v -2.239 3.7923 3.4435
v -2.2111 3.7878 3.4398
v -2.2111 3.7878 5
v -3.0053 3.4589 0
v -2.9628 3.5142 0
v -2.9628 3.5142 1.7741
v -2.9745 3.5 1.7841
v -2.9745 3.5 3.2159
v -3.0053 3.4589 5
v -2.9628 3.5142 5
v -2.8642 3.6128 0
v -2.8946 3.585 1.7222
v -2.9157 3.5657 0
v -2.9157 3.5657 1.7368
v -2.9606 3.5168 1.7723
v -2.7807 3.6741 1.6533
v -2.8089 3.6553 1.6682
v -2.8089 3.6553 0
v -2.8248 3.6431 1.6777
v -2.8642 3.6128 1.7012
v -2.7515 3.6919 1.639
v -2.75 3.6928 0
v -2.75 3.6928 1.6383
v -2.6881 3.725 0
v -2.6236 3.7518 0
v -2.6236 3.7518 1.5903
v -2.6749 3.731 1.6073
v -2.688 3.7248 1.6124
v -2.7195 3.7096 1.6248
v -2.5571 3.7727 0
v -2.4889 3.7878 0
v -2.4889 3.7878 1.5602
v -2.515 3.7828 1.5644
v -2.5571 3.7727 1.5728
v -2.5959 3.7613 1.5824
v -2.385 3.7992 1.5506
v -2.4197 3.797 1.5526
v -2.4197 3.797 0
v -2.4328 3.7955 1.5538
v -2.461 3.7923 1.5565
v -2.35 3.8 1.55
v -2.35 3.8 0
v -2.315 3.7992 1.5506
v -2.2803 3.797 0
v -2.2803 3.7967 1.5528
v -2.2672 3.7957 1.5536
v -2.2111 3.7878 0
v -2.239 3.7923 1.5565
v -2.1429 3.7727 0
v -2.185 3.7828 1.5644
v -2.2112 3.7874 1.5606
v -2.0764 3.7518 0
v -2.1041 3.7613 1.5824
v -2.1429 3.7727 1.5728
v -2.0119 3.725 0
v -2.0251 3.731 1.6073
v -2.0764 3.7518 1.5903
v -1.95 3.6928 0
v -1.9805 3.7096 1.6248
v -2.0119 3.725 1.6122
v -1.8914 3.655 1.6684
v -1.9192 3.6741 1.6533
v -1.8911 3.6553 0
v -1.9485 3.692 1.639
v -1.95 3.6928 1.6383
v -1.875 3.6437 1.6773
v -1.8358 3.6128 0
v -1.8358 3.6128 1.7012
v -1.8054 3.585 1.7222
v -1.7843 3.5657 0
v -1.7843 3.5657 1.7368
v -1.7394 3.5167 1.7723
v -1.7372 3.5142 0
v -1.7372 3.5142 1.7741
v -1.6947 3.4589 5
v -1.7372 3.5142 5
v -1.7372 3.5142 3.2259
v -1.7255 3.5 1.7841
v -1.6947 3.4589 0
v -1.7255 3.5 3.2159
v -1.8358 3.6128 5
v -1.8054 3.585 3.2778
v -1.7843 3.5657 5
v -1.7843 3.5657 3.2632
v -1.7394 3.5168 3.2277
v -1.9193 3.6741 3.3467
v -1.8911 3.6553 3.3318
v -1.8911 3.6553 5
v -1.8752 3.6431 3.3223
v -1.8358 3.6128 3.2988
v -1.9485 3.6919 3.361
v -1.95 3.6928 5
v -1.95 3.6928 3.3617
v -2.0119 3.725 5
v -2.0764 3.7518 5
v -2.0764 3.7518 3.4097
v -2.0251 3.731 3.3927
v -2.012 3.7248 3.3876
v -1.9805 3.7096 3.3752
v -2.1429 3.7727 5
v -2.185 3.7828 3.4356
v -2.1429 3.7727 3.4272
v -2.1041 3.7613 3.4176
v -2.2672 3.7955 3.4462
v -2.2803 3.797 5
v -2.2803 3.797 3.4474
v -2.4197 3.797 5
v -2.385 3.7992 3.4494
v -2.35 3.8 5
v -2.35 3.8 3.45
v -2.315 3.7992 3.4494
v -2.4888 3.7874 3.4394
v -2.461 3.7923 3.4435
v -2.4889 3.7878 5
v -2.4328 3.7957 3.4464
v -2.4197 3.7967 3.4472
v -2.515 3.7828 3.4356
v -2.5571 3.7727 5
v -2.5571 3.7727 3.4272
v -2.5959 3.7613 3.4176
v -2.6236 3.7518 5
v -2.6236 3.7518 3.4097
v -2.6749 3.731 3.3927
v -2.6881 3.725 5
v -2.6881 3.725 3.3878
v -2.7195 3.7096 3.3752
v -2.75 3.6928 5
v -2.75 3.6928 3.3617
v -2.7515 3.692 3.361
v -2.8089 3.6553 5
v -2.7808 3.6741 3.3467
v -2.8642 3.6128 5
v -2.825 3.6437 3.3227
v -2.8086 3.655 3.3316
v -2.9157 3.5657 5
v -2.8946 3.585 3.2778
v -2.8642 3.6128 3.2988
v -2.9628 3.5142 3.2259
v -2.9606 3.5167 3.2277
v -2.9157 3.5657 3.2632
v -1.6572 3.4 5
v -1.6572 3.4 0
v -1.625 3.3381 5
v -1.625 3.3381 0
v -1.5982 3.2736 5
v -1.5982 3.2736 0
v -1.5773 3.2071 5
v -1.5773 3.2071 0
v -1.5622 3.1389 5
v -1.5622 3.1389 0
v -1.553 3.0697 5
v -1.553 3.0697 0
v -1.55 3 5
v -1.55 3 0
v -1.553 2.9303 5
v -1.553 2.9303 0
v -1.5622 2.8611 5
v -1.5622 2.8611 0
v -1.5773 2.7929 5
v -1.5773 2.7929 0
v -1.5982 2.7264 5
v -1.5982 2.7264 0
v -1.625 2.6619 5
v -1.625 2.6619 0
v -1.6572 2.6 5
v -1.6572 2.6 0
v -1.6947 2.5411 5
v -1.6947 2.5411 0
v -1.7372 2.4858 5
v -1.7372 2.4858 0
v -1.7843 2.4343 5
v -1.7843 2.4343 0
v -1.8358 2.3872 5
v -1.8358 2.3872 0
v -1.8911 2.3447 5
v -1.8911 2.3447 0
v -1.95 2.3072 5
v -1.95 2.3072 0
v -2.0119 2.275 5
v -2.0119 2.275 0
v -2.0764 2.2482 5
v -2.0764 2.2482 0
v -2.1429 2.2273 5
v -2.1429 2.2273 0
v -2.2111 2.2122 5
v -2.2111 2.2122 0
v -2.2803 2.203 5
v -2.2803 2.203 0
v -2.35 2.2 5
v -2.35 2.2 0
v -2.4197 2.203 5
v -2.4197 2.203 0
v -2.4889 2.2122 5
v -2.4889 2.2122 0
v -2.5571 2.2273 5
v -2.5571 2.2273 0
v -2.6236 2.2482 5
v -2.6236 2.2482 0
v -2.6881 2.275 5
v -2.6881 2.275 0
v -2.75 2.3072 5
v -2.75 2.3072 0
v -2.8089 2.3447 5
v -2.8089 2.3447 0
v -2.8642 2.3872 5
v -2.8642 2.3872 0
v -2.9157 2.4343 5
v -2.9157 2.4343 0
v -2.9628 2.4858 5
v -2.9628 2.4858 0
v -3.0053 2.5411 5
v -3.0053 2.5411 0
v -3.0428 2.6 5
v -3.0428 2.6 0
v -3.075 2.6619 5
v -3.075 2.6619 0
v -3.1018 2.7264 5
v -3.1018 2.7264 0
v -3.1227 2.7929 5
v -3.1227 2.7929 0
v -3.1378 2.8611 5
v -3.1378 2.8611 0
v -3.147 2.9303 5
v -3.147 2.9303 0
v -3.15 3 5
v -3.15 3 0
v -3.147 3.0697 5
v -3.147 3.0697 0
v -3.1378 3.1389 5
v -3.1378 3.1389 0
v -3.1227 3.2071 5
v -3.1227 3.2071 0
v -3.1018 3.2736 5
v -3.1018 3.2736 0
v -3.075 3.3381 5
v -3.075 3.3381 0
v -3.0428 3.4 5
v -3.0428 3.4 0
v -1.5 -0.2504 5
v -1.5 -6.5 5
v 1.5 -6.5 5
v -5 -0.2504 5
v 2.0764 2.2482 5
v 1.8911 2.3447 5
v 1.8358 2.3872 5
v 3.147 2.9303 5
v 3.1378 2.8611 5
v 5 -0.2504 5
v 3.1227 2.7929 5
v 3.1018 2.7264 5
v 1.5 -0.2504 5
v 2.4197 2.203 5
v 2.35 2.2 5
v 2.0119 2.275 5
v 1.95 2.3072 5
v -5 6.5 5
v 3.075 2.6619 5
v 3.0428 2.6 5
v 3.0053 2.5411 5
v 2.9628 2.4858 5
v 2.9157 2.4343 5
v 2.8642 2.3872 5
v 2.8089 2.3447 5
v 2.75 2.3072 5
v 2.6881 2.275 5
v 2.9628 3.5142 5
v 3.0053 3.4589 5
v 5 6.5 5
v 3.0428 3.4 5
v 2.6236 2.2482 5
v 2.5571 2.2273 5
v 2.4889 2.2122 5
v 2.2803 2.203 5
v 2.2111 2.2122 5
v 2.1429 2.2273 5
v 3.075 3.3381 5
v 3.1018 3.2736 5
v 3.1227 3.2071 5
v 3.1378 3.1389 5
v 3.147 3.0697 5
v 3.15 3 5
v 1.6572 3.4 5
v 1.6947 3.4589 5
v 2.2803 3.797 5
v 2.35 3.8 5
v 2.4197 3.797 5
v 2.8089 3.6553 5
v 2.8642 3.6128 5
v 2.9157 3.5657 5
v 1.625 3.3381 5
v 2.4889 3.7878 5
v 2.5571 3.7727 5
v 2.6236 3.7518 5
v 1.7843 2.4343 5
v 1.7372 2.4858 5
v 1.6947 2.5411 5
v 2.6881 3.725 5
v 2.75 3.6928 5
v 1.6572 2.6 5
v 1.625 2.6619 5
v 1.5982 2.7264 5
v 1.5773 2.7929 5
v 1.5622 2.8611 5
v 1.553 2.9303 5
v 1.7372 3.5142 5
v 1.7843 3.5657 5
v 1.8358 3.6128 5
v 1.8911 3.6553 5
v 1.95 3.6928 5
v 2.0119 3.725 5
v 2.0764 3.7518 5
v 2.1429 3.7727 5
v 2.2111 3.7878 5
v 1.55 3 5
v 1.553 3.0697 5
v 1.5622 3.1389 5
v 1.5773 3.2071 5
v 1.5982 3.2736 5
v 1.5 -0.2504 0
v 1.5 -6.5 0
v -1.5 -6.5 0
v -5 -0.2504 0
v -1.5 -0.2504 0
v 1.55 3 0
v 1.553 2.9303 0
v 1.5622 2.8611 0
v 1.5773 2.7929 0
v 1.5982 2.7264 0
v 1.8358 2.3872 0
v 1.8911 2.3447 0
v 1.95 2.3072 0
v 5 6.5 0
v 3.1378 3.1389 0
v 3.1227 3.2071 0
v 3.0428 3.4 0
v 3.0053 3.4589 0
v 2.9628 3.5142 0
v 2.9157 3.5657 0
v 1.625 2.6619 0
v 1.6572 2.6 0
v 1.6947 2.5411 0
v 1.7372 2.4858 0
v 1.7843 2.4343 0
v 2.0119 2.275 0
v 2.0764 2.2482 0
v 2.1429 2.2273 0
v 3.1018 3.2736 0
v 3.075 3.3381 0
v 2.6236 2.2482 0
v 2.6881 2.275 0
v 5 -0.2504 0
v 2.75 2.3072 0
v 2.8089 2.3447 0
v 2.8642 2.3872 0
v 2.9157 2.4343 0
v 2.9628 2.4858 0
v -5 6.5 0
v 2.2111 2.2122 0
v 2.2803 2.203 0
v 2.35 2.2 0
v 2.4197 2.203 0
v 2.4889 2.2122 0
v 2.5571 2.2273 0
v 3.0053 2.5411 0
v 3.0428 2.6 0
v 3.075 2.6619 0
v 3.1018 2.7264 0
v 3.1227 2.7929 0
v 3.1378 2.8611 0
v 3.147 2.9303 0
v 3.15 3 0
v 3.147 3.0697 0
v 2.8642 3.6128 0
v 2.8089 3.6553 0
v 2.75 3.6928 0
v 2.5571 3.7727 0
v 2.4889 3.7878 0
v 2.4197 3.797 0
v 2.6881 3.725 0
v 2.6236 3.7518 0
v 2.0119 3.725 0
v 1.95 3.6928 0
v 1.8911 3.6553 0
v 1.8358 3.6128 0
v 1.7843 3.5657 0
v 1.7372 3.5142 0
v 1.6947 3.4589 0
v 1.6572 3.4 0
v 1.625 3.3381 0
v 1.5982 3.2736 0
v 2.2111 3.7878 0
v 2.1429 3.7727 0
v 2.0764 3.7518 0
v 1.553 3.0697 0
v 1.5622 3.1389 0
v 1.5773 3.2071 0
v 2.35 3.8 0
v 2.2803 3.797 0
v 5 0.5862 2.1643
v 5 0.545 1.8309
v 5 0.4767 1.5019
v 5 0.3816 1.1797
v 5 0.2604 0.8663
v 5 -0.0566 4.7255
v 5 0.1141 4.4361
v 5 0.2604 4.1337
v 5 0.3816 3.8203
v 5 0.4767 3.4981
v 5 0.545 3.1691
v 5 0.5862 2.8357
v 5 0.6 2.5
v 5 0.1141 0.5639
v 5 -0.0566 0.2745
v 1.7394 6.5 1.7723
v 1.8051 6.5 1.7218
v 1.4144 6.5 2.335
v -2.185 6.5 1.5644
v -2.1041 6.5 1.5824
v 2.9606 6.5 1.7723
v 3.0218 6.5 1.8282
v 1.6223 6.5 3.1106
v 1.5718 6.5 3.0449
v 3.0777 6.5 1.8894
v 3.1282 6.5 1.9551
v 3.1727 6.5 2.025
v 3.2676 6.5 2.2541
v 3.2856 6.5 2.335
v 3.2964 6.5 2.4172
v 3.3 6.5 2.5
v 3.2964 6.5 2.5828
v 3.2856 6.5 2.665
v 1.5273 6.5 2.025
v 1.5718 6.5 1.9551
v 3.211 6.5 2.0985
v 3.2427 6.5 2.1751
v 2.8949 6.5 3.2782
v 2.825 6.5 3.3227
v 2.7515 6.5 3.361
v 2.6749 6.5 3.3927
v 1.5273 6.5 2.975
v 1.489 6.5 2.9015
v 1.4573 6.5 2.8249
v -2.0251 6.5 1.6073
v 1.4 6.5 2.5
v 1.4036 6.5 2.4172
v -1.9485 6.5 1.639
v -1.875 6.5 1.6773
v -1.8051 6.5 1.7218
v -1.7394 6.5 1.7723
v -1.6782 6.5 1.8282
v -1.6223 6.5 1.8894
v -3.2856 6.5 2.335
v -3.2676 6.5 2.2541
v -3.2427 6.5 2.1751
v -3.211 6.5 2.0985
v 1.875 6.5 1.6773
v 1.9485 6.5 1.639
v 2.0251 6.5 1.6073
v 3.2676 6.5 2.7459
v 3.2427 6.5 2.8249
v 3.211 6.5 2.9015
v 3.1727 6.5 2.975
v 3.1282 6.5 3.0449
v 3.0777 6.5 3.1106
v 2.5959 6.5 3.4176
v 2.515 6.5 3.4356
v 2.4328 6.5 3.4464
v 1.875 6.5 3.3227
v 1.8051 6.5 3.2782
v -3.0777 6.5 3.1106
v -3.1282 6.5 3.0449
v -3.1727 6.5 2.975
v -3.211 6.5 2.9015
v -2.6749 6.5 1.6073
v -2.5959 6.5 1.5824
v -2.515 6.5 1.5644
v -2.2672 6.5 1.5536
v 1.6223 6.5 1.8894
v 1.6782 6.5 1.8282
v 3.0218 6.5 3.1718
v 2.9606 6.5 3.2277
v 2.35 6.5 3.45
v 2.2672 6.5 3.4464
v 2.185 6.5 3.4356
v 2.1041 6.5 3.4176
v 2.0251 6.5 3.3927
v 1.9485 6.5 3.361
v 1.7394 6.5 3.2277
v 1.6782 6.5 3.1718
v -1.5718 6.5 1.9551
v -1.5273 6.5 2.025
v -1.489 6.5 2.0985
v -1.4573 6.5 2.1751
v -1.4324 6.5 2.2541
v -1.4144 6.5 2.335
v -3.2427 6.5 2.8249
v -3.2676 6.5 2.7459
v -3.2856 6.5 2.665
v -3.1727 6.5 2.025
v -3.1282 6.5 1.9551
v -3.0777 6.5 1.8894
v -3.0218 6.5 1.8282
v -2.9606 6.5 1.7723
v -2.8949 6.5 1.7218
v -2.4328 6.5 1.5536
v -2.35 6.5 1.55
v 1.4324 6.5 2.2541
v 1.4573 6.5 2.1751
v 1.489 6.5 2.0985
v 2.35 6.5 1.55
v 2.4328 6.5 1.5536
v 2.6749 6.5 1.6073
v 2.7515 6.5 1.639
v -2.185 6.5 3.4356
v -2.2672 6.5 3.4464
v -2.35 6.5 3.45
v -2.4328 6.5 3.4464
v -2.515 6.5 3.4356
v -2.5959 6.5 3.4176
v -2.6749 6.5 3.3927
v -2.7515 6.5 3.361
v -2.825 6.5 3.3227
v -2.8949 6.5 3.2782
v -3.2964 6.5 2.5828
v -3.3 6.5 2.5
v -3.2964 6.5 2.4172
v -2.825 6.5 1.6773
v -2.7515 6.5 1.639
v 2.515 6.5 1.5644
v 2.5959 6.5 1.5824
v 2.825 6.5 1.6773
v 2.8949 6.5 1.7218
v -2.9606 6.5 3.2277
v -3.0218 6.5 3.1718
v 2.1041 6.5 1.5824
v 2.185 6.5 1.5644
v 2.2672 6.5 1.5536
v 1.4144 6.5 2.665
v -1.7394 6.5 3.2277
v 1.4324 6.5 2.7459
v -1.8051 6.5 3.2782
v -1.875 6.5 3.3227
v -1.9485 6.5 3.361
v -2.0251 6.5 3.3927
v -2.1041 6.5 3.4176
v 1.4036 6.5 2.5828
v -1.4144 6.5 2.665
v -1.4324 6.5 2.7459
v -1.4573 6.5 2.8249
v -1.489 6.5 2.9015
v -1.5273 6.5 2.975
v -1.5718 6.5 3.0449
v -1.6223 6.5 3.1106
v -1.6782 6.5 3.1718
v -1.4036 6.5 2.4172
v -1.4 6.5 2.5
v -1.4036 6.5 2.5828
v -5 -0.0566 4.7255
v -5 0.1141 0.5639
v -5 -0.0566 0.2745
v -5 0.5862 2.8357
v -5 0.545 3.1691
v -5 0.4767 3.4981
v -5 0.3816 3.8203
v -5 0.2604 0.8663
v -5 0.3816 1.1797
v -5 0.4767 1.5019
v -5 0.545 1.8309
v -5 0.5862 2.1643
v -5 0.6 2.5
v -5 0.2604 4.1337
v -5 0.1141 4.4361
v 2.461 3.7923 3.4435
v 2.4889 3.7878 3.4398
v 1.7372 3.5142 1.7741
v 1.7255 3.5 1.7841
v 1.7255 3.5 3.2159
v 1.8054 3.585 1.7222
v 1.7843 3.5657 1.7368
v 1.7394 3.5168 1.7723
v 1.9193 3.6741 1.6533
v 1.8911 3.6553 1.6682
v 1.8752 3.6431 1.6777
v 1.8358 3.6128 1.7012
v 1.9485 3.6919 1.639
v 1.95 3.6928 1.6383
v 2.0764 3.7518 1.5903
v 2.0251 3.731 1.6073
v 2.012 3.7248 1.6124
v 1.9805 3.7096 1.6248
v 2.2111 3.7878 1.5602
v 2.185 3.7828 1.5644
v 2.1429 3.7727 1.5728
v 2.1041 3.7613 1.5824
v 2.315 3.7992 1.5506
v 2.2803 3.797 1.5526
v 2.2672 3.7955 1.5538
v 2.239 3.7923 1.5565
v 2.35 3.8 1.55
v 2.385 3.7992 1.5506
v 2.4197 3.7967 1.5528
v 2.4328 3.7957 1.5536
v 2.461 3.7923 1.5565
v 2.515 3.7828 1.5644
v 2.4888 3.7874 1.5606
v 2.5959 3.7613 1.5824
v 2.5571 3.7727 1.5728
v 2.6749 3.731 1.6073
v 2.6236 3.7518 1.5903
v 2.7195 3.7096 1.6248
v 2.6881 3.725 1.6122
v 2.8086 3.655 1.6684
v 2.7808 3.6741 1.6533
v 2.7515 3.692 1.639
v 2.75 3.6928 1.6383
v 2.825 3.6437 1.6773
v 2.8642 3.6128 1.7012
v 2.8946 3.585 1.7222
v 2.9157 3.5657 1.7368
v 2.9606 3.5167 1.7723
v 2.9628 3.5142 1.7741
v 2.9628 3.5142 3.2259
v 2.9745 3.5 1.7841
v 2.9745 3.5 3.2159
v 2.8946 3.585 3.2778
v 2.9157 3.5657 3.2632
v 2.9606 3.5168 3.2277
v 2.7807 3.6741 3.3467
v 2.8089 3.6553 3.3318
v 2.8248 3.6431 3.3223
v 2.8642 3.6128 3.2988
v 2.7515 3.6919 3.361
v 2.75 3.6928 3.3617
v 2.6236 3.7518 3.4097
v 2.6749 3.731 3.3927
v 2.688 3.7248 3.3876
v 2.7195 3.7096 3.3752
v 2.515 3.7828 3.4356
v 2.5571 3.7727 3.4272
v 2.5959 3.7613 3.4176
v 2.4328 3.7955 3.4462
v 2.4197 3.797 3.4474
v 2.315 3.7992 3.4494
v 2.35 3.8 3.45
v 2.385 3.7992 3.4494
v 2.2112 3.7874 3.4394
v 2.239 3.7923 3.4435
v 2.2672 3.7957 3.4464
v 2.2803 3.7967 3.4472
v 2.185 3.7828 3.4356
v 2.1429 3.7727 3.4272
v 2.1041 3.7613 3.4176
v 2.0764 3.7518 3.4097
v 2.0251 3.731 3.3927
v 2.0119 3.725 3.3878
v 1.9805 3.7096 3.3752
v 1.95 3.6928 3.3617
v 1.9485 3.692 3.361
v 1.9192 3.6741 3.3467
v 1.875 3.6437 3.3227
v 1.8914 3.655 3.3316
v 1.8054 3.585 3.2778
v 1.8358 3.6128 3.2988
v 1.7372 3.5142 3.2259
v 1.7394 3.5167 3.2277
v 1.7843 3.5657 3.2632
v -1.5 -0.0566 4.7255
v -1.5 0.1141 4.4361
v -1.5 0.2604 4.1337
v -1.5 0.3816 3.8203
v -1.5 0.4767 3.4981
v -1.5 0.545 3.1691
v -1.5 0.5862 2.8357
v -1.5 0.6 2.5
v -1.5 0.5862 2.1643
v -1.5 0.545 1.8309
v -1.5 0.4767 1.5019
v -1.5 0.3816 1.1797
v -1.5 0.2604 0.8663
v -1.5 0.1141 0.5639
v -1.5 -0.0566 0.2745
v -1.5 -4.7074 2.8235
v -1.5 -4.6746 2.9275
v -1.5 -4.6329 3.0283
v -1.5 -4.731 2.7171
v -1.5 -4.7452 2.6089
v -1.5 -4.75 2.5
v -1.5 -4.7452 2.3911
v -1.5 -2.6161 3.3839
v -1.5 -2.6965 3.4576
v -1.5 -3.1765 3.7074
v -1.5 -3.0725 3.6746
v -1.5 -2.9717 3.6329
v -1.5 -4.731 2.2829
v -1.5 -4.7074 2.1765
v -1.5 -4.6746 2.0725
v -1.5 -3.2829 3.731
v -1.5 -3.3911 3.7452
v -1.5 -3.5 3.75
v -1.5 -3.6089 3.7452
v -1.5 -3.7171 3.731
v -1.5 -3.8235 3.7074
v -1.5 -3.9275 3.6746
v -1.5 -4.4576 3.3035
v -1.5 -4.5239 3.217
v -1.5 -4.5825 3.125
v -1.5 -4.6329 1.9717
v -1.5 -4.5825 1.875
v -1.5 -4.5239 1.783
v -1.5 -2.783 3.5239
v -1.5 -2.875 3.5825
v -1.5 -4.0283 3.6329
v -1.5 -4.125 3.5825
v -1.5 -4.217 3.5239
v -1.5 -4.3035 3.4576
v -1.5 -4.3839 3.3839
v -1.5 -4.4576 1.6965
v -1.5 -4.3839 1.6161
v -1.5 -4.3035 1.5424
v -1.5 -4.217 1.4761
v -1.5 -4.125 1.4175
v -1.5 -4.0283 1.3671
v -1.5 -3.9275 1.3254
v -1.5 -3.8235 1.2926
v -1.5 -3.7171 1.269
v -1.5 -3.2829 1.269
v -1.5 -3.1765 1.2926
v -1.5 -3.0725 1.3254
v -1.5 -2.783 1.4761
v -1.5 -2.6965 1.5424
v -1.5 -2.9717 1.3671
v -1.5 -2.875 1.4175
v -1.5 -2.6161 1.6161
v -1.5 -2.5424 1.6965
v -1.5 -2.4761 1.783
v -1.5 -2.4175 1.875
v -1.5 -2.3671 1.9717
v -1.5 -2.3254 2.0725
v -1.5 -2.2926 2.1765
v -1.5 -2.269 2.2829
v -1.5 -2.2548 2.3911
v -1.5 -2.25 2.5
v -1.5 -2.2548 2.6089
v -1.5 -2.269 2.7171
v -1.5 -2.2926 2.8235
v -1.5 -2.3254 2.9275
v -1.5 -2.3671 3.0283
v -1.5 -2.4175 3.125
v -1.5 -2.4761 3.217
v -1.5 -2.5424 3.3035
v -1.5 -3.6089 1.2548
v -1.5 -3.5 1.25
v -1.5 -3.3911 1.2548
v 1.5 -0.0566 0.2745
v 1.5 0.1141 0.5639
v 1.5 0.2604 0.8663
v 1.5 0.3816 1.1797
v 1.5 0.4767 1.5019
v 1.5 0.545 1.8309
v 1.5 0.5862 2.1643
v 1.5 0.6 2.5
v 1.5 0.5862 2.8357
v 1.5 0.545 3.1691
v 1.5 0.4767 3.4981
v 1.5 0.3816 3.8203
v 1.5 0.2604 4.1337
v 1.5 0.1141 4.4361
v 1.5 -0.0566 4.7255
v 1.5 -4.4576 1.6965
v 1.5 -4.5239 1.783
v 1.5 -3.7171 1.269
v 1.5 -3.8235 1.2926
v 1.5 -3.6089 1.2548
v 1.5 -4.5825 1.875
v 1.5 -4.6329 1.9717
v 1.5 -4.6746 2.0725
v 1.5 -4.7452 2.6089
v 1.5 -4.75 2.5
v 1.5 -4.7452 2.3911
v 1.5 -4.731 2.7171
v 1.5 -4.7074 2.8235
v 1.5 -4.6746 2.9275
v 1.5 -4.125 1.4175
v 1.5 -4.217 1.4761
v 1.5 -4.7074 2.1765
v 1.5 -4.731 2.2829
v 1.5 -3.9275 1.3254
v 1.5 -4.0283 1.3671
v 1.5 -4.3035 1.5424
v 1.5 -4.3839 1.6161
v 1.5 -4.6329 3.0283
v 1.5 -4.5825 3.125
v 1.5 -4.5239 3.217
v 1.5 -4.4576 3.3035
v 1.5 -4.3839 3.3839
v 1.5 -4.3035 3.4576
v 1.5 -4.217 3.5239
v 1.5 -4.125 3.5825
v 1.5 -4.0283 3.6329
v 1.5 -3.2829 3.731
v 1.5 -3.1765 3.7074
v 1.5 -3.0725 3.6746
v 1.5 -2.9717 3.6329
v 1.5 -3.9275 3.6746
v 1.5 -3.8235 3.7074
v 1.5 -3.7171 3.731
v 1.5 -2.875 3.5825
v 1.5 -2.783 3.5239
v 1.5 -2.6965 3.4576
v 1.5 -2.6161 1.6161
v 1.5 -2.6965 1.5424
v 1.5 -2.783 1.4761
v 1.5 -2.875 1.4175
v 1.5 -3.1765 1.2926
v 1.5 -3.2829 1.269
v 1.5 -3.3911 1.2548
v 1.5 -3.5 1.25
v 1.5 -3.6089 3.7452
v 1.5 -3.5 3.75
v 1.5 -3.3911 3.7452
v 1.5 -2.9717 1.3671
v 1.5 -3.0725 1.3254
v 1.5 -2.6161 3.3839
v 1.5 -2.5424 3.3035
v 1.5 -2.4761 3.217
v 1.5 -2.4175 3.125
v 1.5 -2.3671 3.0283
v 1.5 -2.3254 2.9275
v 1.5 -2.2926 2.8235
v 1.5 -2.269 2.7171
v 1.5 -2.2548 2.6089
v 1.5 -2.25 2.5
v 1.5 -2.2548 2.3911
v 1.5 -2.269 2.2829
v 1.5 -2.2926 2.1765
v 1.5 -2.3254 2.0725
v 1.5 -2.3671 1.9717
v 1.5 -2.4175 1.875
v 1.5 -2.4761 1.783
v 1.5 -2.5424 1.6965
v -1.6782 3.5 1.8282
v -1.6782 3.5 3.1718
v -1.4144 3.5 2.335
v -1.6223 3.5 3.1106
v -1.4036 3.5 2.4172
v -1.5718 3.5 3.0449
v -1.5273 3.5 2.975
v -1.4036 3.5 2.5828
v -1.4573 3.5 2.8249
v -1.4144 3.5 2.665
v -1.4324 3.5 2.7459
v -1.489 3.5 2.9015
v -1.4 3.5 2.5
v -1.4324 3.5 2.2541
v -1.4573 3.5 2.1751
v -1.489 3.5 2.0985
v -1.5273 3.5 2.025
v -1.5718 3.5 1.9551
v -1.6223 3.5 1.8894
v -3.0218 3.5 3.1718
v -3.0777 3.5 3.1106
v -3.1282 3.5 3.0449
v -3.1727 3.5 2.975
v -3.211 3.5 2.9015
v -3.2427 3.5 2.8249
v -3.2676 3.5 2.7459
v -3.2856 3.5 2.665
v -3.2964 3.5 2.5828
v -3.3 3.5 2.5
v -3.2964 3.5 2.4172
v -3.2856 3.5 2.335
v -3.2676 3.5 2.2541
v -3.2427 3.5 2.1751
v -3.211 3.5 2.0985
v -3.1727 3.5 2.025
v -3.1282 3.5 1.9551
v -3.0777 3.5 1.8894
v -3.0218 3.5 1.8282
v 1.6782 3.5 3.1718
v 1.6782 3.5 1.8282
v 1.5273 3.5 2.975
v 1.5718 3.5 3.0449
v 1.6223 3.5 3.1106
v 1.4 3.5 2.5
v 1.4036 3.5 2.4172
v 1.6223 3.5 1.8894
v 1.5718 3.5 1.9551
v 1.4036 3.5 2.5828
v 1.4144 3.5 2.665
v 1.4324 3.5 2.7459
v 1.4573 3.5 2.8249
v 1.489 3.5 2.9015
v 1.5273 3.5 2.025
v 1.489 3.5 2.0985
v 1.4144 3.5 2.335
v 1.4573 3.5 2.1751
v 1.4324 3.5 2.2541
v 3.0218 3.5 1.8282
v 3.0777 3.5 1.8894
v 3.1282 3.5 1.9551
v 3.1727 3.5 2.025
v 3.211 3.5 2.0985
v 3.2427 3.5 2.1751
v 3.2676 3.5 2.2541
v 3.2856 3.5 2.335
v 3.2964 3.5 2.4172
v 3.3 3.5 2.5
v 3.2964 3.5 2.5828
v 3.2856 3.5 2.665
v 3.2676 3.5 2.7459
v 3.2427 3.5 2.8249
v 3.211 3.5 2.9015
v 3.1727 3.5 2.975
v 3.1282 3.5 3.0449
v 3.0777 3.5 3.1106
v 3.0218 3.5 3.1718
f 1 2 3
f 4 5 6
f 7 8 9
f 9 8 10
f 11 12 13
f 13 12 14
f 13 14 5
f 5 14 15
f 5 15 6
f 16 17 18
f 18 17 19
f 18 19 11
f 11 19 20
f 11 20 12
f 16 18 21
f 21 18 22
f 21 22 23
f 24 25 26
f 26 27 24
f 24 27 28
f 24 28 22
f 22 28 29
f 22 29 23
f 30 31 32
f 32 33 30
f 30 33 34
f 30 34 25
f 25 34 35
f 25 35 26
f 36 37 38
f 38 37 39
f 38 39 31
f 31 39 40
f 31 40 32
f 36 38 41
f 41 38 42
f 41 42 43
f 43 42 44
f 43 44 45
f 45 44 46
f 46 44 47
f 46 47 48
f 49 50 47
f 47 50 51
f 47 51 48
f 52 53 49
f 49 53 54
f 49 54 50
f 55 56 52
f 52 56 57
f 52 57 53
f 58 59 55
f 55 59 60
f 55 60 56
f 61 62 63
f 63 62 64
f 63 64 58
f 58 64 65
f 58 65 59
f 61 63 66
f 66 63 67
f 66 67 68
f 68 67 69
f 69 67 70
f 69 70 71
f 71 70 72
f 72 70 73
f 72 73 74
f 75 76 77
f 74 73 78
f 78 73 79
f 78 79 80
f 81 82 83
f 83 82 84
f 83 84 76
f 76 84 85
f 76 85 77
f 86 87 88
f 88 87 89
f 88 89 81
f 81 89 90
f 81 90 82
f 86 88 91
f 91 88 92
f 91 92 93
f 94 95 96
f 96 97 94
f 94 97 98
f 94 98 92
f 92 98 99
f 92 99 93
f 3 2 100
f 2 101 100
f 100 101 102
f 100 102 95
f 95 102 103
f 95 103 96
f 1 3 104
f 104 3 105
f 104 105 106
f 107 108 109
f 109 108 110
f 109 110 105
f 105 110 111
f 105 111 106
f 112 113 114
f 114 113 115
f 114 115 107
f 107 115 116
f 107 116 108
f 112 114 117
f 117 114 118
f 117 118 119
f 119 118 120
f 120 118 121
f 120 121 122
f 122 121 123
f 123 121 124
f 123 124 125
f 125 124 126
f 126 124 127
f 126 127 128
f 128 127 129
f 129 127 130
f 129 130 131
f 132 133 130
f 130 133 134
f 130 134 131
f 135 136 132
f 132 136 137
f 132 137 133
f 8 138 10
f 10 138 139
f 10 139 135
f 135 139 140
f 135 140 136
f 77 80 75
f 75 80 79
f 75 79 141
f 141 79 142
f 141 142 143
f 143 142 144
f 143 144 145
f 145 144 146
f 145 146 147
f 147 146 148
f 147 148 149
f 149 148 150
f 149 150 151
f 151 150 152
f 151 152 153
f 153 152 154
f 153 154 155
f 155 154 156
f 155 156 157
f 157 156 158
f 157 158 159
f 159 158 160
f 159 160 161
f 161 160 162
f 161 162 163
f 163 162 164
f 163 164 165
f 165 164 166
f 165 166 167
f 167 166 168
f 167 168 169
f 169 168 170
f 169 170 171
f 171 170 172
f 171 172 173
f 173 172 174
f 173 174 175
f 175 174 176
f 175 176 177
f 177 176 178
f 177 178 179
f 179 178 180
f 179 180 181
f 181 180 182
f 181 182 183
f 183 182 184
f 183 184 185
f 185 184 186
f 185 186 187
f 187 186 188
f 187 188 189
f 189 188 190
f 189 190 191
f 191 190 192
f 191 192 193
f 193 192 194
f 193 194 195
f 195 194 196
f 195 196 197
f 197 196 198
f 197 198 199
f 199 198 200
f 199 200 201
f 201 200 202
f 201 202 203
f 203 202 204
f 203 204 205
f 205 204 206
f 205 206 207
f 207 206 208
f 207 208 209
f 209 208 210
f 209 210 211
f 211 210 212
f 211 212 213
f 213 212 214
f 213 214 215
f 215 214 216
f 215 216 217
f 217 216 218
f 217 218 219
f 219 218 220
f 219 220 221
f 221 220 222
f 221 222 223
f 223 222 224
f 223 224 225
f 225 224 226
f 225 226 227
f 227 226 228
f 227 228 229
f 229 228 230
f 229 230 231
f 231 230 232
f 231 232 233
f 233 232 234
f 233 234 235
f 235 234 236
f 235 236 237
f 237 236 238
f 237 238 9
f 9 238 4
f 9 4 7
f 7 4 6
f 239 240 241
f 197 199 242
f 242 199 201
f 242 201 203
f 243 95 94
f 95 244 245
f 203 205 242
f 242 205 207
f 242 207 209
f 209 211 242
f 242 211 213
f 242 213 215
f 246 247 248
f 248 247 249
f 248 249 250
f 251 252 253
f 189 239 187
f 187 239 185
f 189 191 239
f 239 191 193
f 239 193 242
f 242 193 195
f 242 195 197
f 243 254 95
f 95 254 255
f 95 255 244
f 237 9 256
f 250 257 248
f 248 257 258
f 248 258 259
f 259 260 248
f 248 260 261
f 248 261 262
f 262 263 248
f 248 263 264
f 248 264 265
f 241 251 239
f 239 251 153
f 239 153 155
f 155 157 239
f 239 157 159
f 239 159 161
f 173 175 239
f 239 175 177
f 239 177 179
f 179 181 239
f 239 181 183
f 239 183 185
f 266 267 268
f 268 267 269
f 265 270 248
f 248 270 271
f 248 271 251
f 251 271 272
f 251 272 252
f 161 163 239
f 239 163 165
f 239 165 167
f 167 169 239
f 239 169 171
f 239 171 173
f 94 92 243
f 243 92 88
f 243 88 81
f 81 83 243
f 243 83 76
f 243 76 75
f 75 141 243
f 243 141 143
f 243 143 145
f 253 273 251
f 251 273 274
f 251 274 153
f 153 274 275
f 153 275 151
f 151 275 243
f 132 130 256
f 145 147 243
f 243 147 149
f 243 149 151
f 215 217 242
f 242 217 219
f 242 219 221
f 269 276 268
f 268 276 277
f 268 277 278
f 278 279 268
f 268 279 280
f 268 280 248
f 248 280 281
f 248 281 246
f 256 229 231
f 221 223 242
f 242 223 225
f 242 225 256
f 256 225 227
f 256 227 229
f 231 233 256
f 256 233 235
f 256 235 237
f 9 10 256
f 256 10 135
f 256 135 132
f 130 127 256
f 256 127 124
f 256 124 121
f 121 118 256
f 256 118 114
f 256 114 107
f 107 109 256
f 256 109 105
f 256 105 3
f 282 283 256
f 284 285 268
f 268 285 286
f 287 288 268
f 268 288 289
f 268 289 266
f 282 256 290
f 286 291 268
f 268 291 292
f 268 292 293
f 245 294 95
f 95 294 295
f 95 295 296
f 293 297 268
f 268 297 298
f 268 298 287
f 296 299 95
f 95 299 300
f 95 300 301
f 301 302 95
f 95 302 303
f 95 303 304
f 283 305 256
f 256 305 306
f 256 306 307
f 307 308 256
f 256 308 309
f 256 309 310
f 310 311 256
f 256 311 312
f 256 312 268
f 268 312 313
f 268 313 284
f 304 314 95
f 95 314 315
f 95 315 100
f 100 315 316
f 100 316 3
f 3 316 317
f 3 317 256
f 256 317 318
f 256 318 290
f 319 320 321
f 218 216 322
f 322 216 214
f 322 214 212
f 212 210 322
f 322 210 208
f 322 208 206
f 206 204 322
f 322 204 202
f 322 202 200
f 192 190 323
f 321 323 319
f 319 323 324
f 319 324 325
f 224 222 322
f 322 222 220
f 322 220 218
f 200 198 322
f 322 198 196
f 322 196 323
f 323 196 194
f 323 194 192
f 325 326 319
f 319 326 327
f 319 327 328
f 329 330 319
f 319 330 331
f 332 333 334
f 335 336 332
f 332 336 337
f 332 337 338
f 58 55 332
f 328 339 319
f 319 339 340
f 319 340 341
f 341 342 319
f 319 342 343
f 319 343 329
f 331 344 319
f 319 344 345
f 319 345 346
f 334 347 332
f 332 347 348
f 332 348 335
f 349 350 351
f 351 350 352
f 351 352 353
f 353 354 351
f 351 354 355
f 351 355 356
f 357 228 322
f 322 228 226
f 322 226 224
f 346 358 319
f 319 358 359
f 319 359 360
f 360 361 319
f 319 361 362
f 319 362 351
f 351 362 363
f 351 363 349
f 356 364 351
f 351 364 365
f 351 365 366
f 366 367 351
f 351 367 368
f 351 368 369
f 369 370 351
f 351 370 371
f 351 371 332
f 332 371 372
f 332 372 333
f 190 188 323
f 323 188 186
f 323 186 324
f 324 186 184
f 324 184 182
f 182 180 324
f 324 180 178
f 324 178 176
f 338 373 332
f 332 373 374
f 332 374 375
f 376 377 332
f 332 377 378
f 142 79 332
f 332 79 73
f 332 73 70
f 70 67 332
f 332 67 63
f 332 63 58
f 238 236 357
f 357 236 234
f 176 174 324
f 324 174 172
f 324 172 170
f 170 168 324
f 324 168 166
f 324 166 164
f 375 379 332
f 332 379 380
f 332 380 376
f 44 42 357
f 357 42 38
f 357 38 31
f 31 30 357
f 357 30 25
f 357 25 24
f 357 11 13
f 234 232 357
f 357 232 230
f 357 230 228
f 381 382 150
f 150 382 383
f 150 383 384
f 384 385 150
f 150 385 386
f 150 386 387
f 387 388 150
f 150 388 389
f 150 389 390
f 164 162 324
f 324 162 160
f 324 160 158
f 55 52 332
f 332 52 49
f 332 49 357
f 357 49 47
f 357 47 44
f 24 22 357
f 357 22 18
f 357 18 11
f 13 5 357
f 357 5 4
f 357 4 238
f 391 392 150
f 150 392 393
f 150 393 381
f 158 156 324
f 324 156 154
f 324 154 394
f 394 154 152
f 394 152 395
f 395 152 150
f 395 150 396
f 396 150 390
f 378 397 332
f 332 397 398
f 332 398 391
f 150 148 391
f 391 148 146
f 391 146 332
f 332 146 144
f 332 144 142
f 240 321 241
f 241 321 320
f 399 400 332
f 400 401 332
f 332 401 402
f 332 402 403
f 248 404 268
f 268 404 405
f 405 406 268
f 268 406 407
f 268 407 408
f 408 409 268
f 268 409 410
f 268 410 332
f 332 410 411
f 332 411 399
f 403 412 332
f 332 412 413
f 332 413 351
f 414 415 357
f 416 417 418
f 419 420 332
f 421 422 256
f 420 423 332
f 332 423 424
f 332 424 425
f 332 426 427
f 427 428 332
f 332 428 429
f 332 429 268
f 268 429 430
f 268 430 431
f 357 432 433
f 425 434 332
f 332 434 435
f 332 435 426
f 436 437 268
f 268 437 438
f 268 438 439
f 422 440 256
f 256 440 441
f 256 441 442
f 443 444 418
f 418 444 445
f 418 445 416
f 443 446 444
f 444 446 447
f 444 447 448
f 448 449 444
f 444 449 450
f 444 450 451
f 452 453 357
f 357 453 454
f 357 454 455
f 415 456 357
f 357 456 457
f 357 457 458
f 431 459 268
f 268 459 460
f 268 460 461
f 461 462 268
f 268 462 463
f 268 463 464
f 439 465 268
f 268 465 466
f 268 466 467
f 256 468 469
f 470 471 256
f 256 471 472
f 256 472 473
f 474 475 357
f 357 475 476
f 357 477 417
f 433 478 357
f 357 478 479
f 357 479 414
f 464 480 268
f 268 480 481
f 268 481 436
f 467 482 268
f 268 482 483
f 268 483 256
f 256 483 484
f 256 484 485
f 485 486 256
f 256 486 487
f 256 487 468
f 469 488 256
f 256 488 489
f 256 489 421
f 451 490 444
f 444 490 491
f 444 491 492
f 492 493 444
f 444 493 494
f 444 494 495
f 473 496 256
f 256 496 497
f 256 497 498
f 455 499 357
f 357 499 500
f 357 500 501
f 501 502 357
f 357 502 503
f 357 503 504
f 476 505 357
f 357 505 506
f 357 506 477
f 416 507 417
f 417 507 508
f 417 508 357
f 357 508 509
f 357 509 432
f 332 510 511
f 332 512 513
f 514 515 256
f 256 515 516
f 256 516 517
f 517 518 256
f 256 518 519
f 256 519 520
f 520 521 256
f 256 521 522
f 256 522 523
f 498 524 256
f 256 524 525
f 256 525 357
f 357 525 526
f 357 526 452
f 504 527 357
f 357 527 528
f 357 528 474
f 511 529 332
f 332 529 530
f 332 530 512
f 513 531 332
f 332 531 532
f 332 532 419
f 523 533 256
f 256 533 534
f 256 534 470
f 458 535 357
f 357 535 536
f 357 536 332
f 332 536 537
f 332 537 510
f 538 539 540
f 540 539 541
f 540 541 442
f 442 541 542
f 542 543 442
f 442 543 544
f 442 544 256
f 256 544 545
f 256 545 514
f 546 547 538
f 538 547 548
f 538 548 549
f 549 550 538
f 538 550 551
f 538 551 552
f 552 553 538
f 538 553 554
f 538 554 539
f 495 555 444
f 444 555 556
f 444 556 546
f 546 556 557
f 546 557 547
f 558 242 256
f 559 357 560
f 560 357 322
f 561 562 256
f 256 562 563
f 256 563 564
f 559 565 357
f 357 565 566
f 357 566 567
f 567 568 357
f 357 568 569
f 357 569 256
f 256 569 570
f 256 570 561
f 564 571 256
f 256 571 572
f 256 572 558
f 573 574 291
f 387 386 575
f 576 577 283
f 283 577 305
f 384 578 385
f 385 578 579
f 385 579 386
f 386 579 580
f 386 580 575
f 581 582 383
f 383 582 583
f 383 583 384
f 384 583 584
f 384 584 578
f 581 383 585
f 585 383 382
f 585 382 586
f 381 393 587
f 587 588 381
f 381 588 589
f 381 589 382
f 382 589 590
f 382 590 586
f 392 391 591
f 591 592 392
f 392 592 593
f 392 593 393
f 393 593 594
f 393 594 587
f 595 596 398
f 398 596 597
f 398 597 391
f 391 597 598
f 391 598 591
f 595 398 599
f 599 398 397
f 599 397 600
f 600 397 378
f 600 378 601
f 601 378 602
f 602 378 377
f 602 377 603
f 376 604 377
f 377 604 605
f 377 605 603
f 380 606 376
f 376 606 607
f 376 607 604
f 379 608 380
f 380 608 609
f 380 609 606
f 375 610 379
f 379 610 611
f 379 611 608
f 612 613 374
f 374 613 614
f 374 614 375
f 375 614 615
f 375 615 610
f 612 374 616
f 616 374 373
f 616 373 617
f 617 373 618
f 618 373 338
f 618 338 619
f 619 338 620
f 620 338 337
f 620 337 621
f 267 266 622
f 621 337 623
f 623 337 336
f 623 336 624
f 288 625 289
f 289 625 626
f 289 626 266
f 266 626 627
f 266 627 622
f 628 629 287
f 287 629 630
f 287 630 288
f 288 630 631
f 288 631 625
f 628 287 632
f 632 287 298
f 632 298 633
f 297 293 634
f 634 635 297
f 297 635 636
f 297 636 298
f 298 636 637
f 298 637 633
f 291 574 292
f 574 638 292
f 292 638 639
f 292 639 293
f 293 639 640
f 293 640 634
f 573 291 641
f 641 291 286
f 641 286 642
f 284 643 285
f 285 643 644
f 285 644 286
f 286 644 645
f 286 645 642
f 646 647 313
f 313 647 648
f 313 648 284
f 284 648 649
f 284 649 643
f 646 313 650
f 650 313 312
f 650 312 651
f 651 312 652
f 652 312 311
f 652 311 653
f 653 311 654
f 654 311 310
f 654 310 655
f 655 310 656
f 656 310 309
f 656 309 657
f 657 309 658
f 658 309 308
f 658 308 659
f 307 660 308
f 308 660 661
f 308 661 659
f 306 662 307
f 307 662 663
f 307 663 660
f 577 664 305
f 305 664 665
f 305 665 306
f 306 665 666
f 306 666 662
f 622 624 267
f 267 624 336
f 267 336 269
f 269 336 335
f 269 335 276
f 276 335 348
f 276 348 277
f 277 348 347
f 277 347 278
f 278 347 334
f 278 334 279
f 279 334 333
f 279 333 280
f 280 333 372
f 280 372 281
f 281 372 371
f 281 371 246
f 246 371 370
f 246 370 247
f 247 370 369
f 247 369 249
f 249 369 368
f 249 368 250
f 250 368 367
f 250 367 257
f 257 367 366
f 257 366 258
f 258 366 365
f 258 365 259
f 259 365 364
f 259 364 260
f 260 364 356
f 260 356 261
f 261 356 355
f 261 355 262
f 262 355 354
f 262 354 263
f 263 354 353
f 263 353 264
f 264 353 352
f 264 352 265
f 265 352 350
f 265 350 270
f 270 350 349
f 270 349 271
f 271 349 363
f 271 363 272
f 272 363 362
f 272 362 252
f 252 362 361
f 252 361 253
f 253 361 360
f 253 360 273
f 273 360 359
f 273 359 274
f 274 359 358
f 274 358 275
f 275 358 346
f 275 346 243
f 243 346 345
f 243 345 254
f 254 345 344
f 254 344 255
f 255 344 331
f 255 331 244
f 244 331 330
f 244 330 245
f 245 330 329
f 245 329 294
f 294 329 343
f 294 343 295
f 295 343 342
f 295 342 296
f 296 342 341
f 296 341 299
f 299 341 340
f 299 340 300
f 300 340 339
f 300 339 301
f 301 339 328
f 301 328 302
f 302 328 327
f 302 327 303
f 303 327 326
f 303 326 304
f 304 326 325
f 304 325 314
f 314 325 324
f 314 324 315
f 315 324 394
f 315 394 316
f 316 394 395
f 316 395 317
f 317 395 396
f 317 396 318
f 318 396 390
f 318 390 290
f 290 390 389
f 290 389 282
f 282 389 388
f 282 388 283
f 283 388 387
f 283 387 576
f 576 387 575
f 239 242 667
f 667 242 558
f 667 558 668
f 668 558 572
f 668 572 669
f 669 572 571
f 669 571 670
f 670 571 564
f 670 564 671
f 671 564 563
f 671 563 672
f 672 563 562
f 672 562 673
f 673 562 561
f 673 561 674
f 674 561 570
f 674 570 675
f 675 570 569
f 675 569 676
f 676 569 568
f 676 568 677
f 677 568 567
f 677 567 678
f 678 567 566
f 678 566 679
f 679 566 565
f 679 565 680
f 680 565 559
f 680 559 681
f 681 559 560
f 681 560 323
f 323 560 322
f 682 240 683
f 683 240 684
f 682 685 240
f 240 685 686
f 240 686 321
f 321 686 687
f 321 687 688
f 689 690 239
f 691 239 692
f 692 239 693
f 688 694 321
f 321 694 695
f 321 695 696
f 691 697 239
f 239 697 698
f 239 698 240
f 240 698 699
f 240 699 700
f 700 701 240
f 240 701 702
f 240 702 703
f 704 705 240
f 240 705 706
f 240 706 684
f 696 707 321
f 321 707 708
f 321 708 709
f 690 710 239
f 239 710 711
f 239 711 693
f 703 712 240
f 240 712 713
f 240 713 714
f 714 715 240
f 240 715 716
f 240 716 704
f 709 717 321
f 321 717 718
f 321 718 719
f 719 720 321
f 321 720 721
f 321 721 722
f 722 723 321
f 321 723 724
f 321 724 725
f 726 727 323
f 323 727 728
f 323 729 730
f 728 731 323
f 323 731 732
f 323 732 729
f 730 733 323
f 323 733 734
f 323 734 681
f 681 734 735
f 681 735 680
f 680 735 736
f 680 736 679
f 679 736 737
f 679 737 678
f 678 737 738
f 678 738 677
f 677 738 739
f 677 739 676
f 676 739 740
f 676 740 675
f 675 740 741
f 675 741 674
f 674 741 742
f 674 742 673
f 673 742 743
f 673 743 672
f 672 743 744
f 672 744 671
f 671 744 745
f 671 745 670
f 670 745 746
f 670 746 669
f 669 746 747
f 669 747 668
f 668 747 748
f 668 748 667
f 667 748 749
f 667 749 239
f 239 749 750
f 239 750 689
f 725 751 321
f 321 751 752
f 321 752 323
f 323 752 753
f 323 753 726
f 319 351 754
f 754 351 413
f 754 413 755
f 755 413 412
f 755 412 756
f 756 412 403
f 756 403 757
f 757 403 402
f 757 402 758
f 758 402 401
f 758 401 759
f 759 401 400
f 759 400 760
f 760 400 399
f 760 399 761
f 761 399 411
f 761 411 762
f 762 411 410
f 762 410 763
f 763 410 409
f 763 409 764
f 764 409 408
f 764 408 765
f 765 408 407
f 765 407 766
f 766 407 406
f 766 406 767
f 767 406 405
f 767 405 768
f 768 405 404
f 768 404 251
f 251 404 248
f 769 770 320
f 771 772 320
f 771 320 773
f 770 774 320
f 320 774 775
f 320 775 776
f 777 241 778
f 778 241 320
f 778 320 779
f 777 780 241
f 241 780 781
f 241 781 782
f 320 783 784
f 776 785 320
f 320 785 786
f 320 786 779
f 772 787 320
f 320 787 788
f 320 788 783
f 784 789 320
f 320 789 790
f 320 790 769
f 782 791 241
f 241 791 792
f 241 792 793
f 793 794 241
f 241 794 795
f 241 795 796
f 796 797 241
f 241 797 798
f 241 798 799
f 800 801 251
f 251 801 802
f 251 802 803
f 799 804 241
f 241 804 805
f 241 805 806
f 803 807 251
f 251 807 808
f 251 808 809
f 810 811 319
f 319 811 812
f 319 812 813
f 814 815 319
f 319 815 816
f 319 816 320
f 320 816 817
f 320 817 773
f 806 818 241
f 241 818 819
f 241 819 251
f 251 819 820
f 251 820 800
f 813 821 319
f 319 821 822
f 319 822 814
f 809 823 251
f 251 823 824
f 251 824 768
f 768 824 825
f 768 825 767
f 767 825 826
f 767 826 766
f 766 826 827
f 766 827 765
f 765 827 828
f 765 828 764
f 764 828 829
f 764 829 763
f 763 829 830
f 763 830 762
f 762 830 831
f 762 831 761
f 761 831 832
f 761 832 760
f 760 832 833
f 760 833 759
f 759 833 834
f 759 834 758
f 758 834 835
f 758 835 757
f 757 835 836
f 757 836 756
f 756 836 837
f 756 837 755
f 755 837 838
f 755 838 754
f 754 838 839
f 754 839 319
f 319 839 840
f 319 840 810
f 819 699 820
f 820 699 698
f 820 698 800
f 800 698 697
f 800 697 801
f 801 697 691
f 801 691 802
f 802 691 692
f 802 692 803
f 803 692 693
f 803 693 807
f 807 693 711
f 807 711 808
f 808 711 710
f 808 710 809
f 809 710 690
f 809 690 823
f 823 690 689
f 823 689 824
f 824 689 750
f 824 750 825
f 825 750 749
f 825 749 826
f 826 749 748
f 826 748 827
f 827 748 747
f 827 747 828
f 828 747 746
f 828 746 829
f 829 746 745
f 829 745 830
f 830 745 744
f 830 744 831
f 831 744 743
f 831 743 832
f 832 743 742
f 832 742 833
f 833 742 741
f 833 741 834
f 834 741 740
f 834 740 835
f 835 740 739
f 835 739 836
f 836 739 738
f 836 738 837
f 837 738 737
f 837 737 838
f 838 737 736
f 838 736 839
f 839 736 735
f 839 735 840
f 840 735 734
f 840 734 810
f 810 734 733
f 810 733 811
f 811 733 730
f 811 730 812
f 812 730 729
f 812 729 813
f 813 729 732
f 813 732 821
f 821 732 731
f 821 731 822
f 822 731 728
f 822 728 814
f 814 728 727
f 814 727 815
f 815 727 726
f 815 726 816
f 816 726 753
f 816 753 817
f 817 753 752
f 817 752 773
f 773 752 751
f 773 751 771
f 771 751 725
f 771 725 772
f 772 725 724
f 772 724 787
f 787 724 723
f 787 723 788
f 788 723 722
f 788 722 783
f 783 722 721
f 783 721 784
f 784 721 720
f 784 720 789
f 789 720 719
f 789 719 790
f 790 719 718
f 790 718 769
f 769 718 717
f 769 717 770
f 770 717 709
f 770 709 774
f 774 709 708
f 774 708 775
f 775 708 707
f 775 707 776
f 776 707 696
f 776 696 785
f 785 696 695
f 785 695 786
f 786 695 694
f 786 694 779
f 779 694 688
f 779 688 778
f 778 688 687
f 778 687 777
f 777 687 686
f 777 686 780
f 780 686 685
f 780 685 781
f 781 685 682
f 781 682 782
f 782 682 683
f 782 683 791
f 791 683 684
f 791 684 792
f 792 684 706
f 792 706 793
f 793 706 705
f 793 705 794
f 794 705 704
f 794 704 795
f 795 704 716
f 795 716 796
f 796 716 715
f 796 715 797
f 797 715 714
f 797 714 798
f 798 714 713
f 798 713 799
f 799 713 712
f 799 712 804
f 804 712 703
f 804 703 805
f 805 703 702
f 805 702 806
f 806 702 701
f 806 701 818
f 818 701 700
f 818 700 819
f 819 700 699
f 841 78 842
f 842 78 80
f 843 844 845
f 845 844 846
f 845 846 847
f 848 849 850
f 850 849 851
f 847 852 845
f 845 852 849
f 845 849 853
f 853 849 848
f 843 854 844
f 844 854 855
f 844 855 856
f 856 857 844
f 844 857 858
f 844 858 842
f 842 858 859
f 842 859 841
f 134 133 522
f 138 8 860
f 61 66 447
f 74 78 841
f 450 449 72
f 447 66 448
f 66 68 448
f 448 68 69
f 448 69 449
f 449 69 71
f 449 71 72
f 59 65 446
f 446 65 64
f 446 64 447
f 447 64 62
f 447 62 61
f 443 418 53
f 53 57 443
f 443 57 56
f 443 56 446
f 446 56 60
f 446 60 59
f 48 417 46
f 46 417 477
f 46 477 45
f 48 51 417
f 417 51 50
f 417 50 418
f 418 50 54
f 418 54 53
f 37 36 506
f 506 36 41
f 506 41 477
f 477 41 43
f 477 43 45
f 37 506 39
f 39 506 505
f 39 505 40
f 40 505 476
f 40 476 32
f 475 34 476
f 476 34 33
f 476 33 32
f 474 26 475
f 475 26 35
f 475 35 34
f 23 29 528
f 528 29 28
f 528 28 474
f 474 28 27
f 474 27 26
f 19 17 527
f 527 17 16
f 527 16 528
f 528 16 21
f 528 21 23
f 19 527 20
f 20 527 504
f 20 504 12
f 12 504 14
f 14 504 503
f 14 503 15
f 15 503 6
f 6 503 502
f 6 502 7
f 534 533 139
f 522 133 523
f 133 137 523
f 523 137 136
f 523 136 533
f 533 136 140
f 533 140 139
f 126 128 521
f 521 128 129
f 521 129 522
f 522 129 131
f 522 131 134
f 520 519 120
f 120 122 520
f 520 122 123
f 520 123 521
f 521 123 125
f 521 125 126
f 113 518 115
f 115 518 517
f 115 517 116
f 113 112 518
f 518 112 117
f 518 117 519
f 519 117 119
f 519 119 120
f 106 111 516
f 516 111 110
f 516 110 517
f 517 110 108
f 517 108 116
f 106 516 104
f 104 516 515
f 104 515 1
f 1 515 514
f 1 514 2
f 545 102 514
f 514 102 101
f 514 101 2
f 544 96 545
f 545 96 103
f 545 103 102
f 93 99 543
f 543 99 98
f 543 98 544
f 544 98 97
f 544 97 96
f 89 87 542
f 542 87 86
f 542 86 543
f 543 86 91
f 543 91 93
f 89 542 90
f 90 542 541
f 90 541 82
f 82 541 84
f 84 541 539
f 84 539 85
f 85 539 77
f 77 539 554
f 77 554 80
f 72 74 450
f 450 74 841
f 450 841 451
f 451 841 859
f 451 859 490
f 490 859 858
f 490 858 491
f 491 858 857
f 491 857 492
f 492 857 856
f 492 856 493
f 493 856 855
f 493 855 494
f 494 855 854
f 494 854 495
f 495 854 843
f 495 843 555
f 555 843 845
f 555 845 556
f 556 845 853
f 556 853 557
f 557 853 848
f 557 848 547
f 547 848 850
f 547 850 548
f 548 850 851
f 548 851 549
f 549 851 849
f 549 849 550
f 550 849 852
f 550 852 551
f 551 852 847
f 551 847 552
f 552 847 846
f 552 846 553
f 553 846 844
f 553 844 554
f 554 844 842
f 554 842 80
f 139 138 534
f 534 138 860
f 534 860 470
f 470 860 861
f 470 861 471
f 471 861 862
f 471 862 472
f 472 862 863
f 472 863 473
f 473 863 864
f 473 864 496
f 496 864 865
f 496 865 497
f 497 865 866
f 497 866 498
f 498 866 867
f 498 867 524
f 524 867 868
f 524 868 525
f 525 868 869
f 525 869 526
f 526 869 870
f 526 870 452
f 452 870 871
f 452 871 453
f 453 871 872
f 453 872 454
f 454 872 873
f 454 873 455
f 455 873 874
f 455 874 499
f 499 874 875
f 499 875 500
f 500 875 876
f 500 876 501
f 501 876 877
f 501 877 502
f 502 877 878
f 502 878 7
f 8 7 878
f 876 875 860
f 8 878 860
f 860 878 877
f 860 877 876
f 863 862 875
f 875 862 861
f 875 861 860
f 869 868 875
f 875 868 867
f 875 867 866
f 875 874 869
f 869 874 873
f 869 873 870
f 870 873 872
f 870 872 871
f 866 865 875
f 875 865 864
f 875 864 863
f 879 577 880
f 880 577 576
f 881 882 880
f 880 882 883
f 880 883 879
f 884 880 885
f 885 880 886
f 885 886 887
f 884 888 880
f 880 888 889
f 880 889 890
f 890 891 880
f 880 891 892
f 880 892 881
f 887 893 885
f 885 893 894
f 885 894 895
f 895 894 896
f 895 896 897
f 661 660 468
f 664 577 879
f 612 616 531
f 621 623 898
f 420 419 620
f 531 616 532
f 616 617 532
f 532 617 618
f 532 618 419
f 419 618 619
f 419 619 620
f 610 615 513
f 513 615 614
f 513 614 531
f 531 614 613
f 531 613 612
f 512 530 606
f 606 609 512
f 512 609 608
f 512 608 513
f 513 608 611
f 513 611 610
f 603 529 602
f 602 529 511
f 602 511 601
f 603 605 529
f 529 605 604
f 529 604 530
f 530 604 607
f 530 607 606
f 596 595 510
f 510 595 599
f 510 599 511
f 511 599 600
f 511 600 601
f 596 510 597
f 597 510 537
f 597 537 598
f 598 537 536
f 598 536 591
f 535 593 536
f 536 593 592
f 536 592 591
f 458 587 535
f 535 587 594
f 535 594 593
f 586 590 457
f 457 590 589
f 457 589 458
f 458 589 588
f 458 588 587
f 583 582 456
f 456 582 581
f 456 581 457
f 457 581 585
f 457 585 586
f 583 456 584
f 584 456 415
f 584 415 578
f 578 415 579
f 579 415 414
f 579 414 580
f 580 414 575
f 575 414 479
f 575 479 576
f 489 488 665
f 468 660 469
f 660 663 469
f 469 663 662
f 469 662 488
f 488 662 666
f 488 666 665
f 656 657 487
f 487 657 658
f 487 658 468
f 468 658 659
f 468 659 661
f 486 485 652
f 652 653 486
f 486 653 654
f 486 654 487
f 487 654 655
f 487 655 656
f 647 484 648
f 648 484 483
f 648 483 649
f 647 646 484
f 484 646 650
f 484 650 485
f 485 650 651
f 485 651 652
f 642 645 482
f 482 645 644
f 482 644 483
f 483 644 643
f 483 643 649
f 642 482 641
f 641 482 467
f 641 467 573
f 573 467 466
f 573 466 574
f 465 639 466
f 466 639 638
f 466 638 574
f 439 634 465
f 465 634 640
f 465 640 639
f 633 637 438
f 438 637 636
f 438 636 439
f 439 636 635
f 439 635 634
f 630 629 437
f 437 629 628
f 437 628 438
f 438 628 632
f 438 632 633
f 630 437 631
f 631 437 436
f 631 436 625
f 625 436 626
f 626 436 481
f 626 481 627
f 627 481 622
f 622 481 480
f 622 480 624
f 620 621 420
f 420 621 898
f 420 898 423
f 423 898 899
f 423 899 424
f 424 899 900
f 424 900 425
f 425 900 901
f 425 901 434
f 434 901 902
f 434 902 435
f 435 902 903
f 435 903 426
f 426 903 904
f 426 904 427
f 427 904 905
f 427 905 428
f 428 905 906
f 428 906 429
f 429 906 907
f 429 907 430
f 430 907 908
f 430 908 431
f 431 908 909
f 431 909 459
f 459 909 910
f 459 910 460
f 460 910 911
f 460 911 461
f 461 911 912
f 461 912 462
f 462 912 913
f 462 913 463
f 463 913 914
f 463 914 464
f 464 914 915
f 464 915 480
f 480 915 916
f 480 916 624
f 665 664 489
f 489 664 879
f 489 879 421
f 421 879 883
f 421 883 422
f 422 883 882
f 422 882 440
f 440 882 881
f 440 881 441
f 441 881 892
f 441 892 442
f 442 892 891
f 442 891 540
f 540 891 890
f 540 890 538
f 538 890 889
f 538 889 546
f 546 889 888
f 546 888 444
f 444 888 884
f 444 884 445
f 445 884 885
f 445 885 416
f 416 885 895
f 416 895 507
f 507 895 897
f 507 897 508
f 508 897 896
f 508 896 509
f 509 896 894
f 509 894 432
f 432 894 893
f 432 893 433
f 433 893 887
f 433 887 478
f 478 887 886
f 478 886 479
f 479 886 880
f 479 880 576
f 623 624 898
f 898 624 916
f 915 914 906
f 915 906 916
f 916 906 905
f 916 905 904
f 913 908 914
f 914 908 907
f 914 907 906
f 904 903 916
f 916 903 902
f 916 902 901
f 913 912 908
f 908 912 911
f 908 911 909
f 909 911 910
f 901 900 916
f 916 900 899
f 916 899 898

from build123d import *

# Parameters (mm, degrees)
SKETCH1_W           = 10
SKETCH1_H           = 13
SKETCH1_R           = 0.8
BOSS_EXTRUDE1_DEPTH = 5
CUT_EXTRUDE2_DEPTH  = 3.5
SKETCH4_R           = 1.25
CUT_EXTRUDE3_DEPTH  = 7.5
SKETCH5_R           = 0.95
CUT_EXTRUDE4_DEPTH  = 3


with BuildPart() as part:
    # Sketch1 → Boss-Extrude1 (new body)
    with BuildSketch(Plane.XY):
        Rectangle(SKETCH1_W, SKETCH1_H)
        with Locations((-2.35, 3)):
            Circle(SKETCH1_R, mode=Mode.SUBTRACT)
        with Locations((2.35, 3)):
            Circle(SKETCH1_R, mode=Mode.SUBTRACT)
    extrude(amount=BOSS_EXTRUDE1_DEPTH)

    # Sketch3 → Cut-Extrude2 (cut)
    with BuildSketch(Plane.ZY.offset(5)):
        with BuildLine():
            Line((-1.6, -3.5), (-1.6, -7.6))
            Line((-1.6, -7.6), (6.6, -7.6))
            Line((6.6, -7.6), (6.6, -3.5))
            ThreePointArc((6.6, -3.5), (2.5, 0.6), (-1.6, -3.5))
        make_face()
    cut_extrude2 = extrude(amount=-CUT_EXTRUDE2_DEPTH, mode=Mode.SUBTRACT)

    # Mirror1: Cut-Extrude2 across plane
    add(cut_extrude2.mirror(Plane(origin=(0, 0, 0), x_dir=(0, 0, 1), z_dir=(1, 0, 0))), mode=Mode.SUBTRACT)

    # Sketch4 → Cut-Extrude3 (cut, through all)
    with BuildSketch(Plane.ZY.offset(1.5)):
        with Locations((2.5, -3.5)):
            Circle(SKETCH4_R)
    extrude(amount=-CUT_EXTRUDE3_DEPTH, mode=Mode.SUBTRACT)

    # Sketch5 → Cut-Extrude4 (cut)
    with BuildSketch(Plane(origin=(0, 6.5, 0), x_dir=(1, 0, 0), z_dir=(0, 1, 0))):
        with Locations((-2.35, -2.5)):
            Circle(SKETCH5_R)
        with Locations((2.35, -2.5)):
            Circle(SKETCH5_R)
    extrude(amount=-CUT_EXTRUDE4_DEPTH, mode=Mode.SUBTRACT)


solid = part.part
